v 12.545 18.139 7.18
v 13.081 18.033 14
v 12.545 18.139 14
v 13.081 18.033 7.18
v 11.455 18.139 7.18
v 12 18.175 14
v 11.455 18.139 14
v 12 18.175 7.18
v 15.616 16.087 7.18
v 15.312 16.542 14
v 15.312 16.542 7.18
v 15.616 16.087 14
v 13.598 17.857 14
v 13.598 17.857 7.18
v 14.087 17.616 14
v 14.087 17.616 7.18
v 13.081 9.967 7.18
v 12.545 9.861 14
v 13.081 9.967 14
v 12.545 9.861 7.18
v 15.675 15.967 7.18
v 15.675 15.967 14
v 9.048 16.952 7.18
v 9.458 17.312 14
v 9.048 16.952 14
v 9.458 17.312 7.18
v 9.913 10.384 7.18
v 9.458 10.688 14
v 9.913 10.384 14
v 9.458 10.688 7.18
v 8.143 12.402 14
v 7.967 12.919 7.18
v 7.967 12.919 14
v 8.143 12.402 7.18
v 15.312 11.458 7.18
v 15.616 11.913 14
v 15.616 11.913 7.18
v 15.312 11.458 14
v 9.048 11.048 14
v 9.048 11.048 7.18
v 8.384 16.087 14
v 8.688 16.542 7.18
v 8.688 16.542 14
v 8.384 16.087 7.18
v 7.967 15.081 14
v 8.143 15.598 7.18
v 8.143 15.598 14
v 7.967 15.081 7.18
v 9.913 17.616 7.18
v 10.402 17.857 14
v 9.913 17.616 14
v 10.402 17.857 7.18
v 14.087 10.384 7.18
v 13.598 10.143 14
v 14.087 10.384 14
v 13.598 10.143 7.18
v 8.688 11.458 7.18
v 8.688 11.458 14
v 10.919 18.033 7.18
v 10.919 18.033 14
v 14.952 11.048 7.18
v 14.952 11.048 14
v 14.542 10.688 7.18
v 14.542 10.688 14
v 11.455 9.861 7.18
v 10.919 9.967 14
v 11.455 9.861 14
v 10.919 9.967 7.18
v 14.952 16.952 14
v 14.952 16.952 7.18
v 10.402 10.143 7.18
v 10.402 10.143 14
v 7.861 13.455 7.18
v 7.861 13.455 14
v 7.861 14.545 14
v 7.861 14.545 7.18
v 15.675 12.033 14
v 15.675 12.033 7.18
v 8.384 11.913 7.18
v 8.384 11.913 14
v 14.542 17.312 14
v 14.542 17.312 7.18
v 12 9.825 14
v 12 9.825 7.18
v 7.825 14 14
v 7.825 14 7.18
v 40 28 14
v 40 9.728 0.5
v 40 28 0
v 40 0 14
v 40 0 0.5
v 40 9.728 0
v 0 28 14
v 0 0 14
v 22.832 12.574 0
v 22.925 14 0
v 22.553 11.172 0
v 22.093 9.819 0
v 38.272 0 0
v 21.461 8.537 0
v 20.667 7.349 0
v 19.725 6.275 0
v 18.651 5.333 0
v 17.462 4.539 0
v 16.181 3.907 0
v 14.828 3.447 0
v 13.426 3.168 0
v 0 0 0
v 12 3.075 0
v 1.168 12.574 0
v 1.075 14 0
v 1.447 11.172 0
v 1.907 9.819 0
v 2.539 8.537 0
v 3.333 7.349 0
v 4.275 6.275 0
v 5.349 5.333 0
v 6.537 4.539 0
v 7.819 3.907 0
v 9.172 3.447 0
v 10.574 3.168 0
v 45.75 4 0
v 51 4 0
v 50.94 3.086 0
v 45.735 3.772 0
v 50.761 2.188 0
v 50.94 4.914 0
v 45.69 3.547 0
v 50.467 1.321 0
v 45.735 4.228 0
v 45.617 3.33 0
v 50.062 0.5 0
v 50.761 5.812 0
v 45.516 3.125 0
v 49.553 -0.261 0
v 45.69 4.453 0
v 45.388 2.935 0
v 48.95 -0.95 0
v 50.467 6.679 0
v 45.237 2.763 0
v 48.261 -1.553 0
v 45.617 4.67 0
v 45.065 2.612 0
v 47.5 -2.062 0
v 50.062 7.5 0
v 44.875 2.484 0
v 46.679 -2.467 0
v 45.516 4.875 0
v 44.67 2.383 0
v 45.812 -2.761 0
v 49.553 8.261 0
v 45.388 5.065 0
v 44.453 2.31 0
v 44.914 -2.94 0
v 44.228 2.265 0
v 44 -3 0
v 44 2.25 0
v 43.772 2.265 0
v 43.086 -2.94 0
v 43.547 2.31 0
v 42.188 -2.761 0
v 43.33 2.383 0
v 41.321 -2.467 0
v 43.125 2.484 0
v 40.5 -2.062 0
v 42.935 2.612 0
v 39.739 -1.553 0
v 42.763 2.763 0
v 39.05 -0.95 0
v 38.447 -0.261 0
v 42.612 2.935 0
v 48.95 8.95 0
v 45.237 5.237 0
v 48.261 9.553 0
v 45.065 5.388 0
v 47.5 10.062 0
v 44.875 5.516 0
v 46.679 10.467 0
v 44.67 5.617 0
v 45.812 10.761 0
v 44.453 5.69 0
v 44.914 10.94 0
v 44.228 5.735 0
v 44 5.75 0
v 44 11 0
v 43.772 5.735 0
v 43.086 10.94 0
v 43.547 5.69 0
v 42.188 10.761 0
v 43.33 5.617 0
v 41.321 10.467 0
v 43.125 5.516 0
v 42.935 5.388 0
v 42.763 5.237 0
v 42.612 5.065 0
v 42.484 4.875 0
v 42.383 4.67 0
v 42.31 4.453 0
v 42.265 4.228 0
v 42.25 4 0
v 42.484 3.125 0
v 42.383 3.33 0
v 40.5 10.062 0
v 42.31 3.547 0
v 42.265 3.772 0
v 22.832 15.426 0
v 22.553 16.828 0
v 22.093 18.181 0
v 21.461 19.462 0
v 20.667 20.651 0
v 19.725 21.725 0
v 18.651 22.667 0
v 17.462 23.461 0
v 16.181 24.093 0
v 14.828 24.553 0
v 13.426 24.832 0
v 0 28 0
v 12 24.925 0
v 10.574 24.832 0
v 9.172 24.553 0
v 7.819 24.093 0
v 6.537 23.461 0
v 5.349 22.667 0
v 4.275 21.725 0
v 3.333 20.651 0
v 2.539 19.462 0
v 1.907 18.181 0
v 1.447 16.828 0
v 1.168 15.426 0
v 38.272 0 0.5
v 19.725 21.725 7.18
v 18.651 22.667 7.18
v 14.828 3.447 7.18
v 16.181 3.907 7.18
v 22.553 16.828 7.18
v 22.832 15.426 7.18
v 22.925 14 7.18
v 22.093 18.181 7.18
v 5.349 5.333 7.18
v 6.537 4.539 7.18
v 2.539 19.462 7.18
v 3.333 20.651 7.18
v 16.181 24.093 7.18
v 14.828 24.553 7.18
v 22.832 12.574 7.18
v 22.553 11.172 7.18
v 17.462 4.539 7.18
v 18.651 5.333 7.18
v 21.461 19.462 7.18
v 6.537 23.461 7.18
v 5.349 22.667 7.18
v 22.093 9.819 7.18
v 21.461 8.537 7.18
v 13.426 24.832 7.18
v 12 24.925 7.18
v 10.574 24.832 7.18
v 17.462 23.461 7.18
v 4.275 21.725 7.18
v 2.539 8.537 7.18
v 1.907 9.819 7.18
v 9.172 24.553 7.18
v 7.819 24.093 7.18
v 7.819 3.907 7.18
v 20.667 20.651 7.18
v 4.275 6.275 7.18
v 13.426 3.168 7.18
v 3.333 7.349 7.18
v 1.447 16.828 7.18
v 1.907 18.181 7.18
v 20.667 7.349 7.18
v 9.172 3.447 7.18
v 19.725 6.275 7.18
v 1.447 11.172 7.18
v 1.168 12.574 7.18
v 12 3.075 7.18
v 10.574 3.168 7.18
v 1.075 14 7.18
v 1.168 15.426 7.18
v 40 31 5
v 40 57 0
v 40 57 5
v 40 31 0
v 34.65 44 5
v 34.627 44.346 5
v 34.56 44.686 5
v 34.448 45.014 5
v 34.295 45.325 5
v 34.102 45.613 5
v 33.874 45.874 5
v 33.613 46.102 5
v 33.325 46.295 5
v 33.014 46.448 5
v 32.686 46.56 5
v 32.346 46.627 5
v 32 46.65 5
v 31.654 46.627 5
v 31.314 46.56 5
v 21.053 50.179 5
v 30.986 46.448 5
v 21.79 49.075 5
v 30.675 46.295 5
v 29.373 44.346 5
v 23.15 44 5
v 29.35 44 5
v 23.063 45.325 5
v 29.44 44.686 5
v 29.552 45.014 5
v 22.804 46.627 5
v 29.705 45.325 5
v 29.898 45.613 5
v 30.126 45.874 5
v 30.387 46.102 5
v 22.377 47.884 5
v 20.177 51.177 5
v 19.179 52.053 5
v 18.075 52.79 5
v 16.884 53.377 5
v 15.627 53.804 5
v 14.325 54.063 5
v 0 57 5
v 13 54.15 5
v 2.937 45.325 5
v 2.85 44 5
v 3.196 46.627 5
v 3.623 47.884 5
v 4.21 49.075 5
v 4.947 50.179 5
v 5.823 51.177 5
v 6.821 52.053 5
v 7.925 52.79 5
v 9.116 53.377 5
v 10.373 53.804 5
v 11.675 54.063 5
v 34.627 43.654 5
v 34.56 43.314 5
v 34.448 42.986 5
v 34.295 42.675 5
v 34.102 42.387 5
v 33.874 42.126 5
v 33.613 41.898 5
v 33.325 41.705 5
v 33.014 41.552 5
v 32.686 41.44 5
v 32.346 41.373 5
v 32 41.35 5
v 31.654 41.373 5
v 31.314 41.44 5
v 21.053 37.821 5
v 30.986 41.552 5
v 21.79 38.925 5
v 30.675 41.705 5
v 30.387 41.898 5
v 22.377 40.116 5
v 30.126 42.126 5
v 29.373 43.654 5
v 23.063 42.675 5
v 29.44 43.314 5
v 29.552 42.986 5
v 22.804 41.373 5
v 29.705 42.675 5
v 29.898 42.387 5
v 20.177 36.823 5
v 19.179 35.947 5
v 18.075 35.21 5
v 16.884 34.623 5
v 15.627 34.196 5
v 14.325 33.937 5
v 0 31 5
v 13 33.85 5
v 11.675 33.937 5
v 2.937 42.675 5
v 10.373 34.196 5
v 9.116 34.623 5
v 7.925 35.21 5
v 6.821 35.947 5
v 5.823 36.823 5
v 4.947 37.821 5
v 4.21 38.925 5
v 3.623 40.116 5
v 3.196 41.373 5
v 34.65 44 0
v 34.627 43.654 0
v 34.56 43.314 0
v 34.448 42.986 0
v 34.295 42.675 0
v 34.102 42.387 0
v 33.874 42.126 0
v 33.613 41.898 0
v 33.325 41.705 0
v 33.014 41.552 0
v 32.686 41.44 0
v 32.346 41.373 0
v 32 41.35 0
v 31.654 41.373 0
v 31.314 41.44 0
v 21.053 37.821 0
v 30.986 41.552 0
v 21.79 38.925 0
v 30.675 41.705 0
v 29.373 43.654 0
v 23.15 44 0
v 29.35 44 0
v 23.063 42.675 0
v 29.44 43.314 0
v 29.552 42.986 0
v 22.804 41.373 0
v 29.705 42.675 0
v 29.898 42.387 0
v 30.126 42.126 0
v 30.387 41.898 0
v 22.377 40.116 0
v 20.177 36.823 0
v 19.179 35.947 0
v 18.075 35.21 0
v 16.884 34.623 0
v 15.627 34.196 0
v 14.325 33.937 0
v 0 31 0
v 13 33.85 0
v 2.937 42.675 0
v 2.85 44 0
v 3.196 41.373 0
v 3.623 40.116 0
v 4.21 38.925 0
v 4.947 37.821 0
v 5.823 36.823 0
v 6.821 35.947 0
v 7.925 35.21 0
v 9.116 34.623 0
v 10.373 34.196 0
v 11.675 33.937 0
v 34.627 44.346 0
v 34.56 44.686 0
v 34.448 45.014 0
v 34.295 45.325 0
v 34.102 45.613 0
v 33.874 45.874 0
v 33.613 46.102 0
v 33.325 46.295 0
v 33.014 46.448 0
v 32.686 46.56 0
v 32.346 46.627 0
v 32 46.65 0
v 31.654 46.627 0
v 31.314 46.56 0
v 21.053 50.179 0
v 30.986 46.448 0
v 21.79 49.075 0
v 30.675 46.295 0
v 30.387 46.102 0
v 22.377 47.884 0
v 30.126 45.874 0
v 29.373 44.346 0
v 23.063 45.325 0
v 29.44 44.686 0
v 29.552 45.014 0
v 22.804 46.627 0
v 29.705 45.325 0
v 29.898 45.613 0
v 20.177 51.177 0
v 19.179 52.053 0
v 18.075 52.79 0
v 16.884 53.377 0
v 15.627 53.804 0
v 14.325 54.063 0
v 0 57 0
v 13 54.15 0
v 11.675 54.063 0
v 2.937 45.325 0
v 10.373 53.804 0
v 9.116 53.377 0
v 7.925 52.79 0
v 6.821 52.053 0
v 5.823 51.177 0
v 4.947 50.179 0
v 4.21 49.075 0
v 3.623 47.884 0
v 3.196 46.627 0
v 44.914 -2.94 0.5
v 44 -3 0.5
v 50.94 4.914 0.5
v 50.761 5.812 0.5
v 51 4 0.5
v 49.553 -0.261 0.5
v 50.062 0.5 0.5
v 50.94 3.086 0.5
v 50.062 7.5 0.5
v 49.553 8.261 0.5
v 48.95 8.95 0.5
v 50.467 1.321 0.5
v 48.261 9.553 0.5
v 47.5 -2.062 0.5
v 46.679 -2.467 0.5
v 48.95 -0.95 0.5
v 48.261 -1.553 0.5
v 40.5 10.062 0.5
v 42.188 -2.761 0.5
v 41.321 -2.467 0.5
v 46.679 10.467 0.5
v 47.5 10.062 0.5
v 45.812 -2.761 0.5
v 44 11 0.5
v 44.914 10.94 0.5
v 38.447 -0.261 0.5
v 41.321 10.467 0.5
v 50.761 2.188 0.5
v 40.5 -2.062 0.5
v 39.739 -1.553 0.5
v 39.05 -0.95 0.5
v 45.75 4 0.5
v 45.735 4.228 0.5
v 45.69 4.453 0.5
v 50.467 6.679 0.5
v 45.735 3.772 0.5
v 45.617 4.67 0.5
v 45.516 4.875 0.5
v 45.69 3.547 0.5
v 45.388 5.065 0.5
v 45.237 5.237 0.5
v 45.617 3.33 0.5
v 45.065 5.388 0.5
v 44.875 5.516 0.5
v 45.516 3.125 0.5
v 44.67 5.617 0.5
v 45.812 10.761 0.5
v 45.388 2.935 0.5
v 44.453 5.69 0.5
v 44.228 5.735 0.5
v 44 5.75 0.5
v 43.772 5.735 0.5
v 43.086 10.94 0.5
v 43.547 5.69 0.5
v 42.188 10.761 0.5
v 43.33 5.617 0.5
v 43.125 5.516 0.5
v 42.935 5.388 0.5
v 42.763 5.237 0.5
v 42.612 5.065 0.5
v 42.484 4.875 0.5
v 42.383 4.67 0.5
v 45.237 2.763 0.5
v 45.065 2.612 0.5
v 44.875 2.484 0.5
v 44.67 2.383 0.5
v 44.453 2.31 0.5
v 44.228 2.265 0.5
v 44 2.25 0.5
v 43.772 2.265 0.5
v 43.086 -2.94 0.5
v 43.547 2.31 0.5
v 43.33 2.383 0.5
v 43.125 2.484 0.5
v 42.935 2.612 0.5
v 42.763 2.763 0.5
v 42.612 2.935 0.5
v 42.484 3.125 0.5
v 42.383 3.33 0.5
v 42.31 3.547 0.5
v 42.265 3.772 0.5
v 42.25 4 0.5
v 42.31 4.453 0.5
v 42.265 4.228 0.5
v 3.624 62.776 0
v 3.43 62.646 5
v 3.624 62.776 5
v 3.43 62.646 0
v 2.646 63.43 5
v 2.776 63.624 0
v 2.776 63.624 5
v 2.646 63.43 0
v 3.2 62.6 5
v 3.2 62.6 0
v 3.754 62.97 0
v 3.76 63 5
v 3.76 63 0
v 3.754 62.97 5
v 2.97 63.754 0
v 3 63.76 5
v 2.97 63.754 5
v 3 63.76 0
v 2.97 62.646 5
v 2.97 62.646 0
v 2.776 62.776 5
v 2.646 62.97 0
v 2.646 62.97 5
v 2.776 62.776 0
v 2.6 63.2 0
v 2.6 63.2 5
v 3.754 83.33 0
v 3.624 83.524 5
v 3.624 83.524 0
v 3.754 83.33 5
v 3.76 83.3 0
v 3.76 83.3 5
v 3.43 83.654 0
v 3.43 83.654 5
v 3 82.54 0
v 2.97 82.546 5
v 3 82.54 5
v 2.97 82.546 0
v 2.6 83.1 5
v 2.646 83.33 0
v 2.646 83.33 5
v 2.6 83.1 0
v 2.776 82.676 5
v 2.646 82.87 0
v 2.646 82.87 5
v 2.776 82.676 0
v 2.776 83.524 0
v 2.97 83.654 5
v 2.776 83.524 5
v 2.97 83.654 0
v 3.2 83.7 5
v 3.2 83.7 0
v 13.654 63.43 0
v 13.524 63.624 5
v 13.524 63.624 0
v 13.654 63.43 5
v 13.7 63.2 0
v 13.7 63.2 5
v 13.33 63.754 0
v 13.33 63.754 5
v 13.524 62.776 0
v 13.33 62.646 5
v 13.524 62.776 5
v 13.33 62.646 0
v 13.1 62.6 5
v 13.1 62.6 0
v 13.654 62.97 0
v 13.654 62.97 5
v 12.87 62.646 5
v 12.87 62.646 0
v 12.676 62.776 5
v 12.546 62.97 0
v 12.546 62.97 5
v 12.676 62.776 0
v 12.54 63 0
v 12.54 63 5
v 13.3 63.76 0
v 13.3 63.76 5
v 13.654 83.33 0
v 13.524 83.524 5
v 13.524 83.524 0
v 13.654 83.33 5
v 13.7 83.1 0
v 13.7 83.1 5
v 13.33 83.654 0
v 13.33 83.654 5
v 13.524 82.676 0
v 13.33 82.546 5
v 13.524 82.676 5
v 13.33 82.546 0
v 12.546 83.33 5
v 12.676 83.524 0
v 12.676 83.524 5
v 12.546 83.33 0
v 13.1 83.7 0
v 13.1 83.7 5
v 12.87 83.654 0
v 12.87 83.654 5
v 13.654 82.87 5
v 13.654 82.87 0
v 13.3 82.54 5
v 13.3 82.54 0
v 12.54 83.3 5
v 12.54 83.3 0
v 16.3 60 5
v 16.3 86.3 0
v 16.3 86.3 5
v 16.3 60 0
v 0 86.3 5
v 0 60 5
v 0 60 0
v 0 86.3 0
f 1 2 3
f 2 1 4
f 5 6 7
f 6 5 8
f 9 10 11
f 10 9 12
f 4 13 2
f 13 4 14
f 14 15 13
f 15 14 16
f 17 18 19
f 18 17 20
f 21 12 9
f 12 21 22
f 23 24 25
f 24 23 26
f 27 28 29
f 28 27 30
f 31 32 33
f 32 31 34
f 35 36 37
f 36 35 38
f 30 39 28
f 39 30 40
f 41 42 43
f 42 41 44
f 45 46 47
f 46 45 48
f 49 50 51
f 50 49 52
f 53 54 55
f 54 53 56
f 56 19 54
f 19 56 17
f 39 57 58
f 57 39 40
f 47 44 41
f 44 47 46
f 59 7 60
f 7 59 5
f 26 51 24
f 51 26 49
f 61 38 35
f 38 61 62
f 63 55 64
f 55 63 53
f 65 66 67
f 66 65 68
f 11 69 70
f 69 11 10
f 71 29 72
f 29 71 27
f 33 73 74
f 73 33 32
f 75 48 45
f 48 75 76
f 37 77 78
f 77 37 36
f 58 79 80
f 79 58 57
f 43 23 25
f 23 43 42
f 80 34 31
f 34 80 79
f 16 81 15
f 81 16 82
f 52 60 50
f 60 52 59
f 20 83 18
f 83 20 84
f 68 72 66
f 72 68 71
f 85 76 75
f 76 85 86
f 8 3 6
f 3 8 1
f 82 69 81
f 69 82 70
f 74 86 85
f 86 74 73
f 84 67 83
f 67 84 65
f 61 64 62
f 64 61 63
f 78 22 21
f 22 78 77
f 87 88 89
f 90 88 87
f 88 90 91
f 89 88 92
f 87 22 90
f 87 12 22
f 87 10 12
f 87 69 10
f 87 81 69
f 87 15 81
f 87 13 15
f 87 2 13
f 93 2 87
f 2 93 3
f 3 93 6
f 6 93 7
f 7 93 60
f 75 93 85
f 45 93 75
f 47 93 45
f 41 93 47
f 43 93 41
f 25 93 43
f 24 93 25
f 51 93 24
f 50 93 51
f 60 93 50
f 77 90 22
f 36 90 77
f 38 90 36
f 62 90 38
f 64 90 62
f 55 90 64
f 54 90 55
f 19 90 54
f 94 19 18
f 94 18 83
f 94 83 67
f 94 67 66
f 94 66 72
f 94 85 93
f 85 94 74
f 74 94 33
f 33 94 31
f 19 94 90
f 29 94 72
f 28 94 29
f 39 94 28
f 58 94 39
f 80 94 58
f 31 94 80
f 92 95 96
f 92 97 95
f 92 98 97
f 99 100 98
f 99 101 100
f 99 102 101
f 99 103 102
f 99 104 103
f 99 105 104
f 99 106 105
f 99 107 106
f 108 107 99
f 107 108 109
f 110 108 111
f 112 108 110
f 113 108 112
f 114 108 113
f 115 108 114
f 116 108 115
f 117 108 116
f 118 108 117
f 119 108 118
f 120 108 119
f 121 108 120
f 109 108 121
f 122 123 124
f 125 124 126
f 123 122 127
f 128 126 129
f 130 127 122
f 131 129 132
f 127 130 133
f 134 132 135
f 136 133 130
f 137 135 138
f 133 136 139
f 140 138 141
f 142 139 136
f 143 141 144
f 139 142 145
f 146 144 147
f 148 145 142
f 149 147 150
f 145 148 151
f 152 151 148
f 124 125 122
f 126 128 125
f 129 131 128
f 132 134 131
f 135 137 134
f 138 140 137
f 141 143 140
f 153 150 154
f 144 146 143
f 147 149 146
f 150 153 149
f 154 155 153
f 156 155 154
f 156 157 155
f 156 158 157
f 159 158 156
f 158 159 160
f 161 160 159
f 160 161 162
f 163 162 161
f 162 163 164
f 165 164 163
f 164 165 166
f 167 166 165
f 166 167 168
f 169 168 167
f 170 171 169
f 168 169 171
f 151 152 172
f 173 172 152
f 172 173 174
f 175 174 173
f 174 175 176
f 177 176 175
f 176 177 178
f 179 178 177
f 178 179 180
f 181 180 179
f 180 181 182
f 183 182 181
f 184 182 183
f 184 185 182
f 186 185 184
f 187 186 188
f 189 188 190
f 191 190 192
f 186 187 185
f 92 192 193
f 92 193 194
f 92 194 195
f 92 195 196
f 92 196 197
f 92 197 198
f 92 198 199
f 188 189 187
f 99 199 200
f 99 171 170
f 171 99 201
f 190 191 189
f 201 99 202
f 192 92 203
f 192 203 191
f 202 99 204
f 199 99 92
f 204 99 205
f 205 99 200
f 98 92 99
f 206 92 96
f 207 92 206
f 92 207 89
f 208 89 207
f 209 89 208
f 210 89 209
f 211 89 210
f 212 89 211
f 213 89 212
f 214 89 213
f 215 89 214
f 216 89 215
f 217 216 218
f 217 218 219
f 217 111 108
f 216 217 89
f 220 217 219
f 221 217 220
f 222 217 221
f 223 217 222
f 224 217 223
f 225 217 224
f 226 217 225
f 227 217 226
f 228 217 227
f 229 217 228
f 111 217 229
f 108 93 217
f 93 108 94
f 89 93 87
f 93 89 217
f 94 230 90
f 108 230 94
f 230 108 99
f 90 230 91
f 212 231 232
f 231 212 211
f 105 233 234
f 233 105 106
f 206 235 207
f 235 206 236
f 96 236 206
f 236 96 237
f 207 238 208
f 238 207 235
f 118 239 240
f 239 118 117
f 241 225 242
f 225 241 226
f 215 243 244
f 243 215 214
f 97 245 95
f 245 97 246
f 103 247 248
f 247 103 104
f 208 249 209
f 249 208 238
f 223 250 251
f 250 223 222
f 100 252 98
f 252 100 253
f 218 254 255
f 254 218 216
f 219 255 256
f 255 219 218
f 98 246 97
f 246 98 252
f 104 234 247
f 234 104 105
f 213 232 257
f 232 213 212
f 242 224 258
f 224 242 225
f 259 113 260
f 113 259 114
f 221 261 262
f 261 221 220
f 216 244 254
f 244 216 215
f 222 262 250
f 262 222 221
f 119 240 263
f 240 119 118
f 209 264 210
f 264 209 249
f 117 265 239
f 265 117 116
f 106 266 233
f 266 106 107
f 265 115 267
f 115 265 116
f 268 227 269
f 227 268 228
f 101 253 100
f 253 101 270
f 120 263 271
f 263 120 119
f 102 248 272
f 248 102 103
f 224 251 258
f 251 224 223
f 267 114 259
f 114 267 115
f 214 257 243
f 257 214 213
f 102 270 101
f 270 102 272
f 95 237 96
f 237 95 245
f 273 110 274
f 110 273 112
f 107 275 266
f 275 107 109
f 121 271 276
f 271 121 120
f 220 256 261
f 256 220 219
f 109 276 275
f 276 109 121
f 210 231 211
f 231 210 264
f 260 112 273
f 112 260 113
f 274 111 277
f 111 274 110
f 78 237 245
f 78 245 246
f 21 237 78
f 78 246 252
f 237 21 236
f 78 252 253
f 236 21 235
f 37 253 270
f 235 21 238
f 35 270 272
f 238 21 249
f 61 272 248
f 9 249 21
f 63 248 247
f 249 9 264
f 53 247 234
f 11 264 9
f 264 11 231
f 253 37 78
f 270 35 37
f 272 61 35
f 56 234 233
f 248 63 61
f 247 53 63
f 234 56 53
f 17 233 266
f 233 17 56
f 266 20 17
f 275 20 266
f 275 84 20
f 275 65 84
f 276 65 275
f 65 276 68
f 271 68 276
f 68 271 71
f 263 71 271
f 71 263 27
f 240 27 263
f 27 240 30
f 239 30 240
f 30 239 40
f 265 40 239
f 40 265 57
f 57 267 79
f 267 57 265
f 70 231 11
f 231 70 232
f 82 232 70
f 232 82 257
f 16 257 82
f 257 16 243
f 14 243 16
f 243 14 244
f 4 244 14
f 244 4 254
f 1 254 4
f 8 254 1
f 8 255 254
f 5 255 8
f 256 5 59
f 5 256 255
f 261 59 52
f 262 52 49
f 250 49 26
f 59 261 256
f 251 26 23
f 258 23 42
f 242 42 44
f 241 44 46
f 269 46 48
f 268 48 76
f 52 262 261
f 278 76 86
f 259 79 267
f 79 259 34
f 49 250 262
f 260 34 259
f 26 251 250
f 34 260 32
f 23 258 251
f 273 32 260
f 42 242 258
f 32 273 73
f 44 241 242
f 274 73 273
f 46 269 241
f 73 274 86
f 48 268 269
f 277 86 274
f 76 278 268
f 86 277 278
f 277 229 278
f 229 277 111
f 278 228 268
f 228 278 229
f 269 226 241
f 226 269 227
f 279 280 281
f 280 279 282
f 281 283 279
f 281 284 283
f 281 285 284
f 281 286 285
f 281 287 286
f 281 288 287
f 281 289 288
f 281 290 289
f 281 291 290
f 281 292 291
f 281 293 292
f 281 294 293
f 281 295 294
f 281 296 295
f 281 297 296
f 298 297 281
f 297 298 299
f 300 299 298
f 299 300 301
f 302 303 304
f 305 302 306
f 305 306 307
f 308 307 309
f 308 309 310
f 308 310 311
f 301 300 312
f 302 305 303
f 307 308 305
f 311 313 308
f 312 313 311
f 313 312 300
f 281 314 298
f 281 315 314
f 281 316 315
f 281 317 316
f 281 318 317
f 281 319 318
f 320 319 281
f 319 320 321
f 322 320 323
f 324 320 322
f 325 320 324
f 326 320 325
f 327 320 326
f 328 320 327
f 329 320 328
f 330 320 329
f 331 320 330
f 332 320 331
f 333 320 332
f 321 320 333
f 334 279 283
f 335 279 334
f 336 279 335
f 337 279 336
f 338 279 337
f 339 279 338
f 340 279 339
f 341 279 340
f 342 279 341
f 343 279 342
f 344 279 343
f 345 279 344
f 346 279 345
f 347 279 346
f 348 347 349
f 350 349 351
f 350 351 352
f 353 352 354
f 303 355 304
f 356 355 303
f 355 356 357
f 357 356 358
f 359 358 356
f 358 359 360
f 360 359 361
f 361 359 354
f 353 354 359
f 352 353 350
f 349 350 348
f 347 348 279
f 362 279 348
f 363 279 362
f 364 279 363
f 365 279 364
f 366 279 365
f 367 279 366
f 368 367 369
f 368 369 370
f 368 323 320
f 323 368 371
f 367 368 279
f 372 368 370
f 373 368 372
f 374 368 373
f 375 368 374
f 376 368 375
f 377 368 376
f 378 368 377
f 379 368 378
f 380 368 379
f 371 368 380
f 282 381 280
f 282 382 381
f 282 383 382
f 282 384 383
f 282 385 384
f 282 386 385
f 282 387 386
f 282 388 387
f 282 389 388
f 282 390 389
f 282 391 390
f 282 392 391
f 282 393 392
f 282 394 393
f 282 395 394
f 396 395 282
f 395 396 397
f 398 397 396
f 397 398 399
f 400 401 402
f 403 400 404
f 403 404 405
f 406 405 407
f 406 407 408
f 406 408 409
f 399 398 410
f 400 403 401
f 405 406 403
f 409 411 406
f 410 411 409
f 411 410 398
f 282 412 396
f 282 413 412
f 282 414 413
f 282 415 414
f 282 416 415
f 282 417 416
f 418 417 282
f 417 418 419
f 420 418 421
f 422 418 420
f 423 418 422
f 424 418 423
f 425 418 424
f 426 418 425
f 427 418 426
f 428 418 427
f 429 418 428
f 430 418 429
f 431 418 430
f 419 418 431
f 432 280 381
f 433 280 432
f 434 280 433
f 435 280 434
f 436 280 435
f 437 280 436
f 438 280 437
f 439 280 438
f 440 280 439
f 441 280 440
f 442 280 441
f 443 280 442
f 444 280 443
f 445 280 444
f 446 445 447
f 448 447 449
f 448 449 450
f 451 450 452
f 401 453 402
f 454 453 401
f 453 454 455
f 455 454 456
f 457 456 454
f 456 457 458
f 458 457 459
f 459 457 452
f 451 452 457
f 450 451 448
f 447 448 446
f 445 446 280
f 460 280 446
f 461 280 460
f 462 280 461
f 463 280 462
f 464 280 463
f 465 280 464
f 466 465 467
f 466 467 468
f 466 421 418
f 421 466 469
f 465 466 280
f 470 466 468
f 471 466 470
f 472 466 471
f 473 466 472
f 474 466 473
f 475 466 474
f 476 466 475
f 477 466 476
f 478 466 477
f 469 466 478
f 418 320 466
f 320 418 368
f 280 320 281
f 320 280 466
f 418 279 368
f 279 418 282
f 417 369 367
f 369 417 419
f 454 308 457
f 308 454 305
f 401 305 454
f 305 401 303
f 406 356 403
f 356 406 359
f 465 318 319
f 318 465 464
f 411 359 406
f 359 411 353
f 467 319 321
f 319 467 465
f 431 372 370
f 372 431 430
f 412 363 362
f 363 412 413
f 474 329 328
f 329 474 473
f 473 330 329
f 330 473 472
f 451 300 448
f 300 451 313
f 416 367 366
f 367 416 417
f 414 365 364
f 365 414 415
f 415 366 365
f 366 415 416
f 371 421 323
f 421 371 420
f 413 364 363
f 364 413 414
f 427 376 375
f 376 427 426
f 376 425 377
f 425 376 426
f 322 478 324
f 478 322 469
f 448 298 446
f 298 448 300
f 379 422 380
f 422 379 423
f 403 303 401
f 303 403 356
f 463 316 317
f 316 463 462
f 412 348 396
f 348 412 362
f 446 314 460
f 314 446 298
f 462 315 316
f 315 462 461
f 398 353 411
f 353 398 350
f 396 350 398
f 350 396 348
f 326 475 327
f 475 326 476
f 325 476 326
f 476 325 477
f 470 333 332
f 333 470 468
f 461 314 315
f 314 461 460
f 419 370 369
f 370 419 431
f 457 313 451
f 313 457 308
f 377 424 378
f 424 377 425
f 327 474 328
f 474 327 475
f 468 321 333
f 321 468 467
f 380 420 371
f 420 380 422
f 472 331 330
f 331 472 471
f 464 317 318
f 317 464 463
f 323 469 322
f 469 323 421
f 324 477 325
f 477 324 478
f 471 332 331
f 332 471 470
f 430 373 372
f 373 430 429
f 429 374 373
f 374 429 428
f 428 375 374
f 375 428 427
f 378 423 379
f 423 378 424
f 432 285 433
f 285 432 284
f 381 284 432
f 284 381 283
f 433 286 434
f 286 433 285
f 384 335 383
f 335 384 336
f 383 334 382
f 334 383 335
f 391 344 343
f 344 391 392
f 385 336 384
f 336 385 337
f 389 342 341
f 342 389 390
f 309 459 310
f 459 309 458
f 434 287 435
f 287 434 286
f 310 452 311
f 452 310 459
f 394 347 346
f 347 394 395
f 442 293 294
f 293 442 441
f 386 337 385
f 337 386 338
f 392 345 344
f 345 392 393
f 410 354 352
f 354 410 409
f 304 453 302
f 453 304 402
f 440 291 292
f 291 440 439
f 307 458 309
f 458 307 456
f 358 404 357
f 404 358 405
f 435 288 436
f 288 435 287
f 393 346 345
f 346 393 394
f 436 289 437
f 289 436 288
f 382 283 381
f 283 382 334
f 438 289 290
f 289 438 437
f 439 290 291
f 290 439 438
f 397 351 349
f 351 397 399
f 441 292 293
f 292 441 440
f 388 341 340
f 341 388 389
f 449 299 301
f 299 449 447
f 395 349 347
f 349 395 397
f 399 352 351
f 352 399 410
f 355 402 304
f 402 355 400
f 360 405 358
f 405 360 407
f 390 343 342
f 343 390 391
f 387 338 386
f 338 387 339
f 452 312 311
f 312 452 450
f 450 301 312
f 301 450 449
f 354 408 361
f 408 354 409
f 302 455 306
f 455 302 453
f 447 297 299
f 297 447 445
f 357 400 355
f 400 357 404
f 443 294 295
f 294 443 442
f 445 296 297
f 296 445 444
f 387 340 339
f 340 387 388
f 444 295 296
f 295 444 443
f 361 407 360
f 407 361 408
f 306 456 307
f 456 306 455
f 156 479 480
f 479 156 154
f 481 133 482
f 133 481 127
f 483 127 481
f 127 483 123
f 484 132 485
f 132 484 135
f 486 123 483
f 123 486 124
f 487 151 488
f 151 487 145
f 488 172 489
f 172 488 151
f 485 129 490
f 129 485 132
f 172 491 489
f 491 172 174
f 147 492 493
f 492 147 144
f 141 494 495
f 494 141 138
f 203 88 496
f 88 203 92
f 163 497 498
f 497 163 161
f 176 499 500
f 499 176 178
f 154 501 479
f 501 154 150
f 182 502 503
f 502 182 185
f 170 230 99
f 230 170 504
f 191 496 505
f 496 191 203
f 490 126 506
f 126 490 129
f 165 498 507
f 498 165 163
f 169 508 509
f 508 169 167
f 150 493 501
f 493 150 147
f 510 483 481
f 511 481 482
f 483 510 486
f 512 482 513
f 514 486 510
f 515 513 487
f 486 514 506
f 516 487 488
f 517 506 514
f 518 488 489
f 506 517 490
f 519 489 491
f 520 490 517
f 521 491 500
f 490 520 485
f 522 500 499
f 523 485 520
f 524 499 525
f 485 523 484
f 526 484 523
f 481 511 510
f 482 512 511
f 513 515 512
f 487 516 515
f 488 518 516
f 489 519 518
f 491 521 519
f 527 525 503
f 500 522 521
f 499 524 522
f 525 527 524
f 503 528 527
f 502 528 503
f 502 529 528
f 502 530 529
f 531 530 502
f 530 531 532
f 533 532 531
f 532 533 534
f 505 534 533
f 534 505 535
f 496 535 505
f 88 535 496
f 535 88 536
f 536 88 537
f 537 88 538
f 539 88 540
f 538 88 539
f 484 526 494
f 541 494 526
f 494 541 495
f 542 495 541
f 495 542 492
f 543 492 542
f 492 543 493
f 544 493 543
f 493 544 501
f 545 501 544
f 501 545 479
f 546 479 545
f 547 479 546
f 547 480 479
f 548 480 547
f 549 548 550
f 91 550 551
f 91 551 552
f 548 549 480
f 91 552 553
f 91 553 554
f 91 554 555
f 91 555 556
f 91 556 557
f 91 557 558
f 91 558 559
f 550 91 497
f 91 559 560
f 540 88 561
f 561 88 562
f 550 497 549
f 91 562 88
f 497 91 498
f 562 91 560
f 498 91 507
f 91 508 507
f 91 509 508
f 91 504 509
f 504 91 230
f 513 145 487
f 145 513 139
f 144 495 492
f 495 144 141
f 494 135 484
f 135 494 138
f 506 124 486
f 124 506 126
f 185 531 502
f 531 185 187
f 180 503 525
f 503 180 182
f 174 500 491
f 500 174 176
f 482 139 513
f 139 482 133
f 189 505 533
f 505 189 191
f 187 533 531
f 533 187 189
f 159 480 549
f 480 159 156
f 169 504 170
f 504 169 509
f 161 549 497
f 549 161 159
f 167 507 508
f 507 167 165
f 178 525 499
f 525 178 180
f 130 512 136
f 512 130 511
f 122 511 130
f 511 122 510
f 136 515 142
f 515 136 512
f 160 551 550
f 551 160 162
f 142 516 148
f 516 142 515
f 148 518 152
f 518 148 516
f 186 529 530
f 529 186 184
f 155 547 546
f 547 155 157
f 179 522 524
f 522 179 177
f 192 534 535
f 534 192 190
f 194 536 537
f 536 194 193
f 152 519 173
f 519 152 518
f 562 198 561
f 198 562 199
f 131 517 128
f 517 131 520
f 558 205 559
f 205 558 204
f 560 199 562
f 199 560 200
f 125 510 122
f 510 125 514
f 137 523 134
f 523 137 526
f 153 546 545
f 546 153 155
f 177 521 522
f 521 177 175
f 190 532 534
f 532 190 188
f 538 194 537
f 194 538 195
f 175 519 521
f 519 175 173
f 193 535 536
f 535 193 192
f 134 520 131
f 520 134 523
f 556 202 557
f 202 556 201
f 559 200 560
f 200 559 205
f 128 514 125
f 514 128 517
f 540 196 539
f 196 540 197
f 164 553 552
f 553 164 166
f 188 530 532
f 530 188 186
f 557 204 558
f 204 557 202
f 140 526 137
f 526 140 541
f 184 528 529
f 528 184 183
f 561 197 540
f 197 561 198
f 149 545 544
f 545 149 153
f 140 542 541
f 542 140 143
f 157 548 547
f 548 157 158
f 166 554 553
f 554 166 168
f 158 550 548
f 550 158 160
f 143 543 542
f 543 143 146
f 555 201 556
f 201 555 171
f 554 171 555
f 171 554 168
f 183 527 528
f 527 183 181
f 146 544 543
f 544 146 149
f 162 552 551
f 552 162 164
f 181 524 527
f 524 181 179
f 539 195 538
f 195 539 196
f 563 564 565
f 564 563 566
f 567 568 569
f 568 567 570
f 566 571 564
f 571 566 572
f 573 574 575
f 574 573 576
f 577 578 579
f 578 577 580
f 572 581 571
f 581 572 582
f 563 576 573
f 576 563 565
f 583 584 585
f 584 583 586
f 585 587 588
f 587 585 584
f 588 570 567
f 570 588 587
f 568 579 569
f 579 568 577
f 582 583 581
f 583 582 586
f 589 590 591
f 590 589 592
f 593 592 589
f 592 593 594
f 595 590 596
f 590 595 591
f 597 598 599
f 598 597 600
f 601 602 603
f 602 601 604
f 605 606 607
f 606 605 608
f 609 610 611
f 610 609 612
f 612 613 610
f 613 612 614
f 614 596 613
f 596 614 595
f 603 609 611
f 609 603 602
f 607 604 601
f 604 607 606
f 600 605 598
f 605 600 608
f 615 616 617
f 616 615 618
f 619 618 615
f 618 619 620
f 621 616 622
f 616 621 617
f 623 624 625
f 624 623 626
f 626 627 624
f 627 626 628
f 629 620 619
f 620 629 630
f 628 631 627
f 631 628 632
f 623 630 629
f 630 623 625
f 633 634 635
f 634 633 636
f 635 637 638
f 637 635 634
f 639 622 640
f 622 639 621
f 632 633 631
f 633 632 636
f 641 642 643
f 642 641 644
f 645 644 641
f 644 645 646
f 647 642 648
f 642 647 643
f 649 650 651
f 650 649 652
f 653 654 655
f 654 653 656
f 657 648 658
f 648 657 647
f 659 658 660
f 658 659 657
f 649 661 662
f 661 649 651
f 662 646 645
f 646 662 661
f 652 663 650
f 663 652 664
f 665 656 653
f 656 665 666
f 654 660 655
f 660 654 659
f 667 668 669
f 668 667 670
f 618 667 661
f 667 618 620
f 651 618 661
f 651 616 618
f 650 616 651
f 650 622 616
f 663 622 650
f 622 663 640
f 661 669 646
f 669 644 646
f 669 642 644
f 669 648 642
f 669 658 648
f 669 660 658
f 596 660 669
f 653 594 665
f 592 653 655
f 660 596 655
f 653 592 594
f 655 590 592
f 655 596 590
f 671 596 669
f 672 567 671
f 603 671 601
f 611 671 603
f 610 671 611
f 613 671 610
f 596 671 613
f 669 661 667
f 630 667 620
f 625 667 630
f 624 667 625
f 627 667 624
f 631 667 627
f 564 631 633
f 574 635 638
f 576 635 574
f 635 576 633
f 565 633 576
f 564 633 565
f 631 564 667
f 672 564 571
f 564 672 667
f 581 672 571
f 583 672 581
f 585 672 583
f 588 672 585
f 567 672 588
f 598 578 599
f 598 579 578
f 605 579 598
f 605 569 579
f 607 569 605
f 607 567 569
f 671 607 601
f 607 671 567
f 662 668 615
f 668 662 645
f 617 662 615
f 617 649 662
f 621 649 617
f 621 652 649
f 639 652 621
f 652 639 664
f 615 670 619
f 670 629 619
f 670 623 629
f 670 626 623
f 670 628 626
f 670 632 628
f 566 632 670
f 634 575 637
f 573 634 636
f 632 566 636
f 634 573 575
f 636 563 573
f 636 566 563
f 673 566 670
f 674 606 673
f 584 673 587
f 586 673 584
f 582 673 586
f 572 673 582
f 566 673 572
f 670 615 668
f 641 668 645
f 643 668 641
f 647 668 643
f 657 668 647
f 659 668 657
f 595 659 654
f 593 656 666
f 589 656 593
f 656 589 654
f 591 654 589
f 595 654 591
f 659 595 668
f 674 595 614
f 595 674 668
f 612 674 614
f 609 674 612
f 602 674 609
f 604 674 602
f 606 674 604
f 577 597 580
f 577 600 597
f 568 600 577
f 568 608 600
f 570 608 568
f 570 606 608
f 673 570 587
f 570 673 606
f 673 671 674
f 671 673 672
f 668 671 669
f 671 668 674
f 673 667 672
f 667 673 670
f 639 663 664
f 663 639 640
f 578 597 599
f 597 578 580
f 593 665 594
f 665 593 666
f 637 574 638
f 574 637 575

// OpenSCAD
// file: parameters.scad
// =============================================================================
// Gen-CL — nightly 2026-10-16 (physics_scorer, honest magpylib watts)
// Modular swap: exactly the Gen-CJ rotors, arcs and steel, on a thinner-copper stator (4.0 mm copper, so the magnet faces close in by 0.5 mm) that needs only ≈300 m of 26 AWG — the rest of the spool stays free. Swap stators by changing the gap sleeve only.
// Clocking 0 deg (magnets N facing S) + D-flat keyed bore + index notch + flip-symmetric hole map.
// Windable 2-piece bobbin; turns = physics_scorer turns_fit; copper only between flanges.
// Steel back-iron: 2× Ø198 × 4.76 mm (3/16") mild-steel discs (steel_backiron_disc.dxf); magnets sit ON the steel
// (through-pockets) -> score with --back-iron. Night 2026-10-16.
// =============================================================================
topology            = "dual_rotor";

// --- Wire / winding (physics_scorer winding-fit) -------------------------------
wire_awg            = 26;
wire_od             = 0.45;     // insulated OD mm (bare 0.405)
fill_realistic      = 0.65;     // insulated-wire area / window (DENSE layered wind with a jig; scorer cap 0.65)
turns               = 196;       // = physics_scorer turns_fit (do NOT raise)
coil_former_type    = "bobbin";
coil_core_inset     = 12.00;     // radial copper build: hub = copper boundary inset by this
wind_build_axial    = 0.0;      // nothing proud of the flanges
wind_build_radial   = 0.0;

// --- Bobbin (base + lid) ---------------------------------------------------------
coil_id_r           = 50.00;    // copper boundary sector
coil_od_r           = 104.00;
span_deg            = 25.99;    // = pitch - 2*asin((wall+0.85)/coil_id_r) -> >=1.2 mm stator web
former_web          = 4.00;     // copper height between flanges (TALL copper: steel keeps Bz up)
flange_t            = 0.80;     // >= 0.8 mm FDM wall rule (tall winds push on the flanges)
wall                = 0.80;     // flange lip beyond copper
former_bare_h       = former_web + 2 * flange_t;
coil_envelope_h     = former_bare_h + 2 * wind_build_axial;
tab_w               = 7.0;
tab_len             = 7.0;
tab_h               = former_bare_h / 2;
pin_d               = 1.9;      // 1.75 mm filament locating pin
coil_mount_r        = coil_od_r + 0.2 + 4.0;
lead_y              = 1.6;
lead_slot_w         = 0.9;
lead_groove_d       = 0.6;

// --- Gap -------------------------------------------------------------------------
run_clear           = 0.50;     // rotor face -> flange
gap_spacer_h        = run_clear + wind_build_axial;
m2m                 = coil_envelope_h + 2 * run_clear;   // rotor face to rotor face (= gap_sleeve length)

// --- Stator ----------------------------------------------------------------------
coil_stations       = 12;
bay_clear           = 0.35;     // 0.35 mm: bobbin BASES print IN PLACE inside the stator bays (print-in-place gap), then pop out
stator_thick        = former_bare_h;                        // bobbins flush both faces
stator_od           = 229.0;
shaft_clear_stator  = 14.0;     // stator is static; gap sleeve OD 12 spins inside
stator_ir           = 44.85;    // ANNULAR stator: open centre (nested one-plate pack); inner rim 4.0 mm

// --- Rotor(s) --------------------------------------------------------------------
magnet_Br           = 1.43;     // N52
magnet_d_large      = 20.0;
magnet_h_large      = 5.0;      // one O20x5 per pocket
magnet_h_small      = 5.0;      // one O5x5 per pocket
halbach_magnetisation = "diametric"; // O5x5 assist magnets MUST be DIAMETRICALLY magnetised (tangential)
rotor_b_same_axis   = true;     // same-index magnets share one axis: N faces S across the gap
large_pocket_d      = 20.3;
small_pocket_d      = 5.3;
pocket_h            = 5.00;     // THROUGH the carrier: magnet back face sits on the steel disc (FLUSH seat: carrier = magnet height, magnet face level with the rotor face)
large_n             = 8;
R_large             = 86.0;
R_small_inner       = 79.8;
R_small_mid         = 86.0;
R_small_outer       = 92.2;
small_r_list        = [R_small_inner, R_small_mid, R_small_outer];   // O5 pockets between poles
// --- N42 rectangular BLOCK magnets (2026-10-16/17): one 20x10x5 block per pole, radially INSIDE the O20 disc ---
block_R_list        = [64.5];   // block centre radius (pole angle); same polarity as its O20 -> radially extended pole
block_angle_list    = [0];
block_radial        = 20.0;    // block side that runs RADIALLY (mm)
block_tangential    = 10.0;    // block side that runs TANGENTIALLY (mm)
block_h             = 5.0;     // magnetised through the 5 mm thickness (axial), = magnet_h_large so it sits on the steel
block_Br            = 1.29;    // N42 remanence (1.28-1.32 T); scorer models it as a magpylib Cuboid
block_pocket_clear  = 0.3;    // pocket = block + 0.3 mm each way (+ 1.2 mm corner reliefs)
carrier_od          = 198.0;
ring_ir             = 51.35;    // RING rotor: PLA magnet ring r ring_ir..carrier_od/2 (steel disc = structural rotor)
hub_flange_od       = 58.0;     // separate rotor_hub flange (inside the ring, flush with the ring face)
csk_d               = 6.6;      // M3 countersunk head pocket (ISO 10642 head 6.0 nominal) on the stator face
csk_depth           = 1.55;     // = (csk_d - m3_clear) / 2: 90 deg cone; head sits 0.3 mm below the face
n_seg               = 8;        // magnet-carrier ARCS per rotor (segmented carrier)
seg_deg             = 360 / n_seg;
seg_start           = -32;   // arc edge angle (between pocket 0 and its clamp bolt)
seg_kerf_deg        = 0.4;      // gap between neighbouring arcs on the steel
carrier_thick       = pocket_h;
hub_h               = 12.0;     // > steel_t + insert: radial set-screw clears the steel
hub_od              = 24.0;     // slim hub so the M4 brace rods fit at R~18 inside the coil ring
hub_insert_d        = 4.0;      // M3 heat-set insert, radial, bears on the D-flat
rotor_b_offset_deg  = 0.0;      // CLOCKING: magnets directly opposite
shaft_key           = "dflat";
dflat_depth         = 0.5;      // 8 mm shaft with 0.5 mm flat (7.5 across flat)
index_notch_d       = 3.0;

// --- Steel back-iron (buyable laser-cut) -------------------------------------------
steel_t             = 4.76;      // mild steel thickness (image method ignores it; sized from steel_flux.py so the return path stays well below saturation)
steel_center_hole   = 26.0;     // slips over the rotor hub (OD 24)
steel_od            = carrier_od;   // steel disc OD = rotor carrier OD

// --- Modular MAX interface ----------------------------------------------------------
shaft_bore          = 8.35;
dflat_x             = 4.0 - dflat_depth + (shaft_bore - 8.0) / 2;
bearing_d           = 21.85;
bearing_h           = 7.2;
m3_clear            = 3.5;
bolt_r_inner        = 22.0;     // M3 steel-disc clamp bolts (inside the magnet ring)
bolt_n_inner        = 4;
bolt_inner_angles   = [0, 90, 180, 270];
bolt_r_outer        = 86.0;     // second M3 steel-disc clamp ring
bolt_outer_angles   = [13.0, 32.0, 58.0, 77.0, 103.0, 122.0, 148.0, 167.0, 193.0, 212.0, 238.0, 257.0, 283.0, 302.0, 328.0, 347.0];
flange_bolt_r       = 109.5;     // frame rods: OUTSIDE the rotor OD (rotors spin inside them)
flange_bolt_n       = 4;
flange_bolt_offset  = 45.00;    // between coil stations -> never cuts a lead groove/tab
brace_r             = 18.0;
brace_d             = 4.3;      // temporary M4 jack rods (assembly only)
brace_n             = 4;
brace_angles        = [45, 135, 225, 315];          // flip-symmetric

spacer_pad_od       = 14.0;
spacer_pad_id       = m3_clear;
endbell_od          = 229.0;
endbell_thick       = 8.0;
endbell_shaft_clear = 10.0;
collar_h            = 10.0;
standoff_od         = 9.0;
frame_standoff_h    = run_clear + carrier_thick + hub_h + collar_h + 2.0;
sleeve_od           = 12.0;
plate_max_mm        = 410;

$fn = 64;
// main file
// Gen-CL — fit coupon: O20/O5 THROUGH pockets at carrier thickness (test on a steel offcut), 608 seat,
// D-flat bore, gap shim, and one bobbin-bay slice (bobbin footprint + bay_clear) to test former fit.
include <parameters.scad>;
$fn = 48;
// D-flat keyed bore: flat faces +X (angle 0 = magnet pocket 0 = index notch)
module dflat_bore(h) {
    intersection() {
        cylinder(d=shaft_bore, h=h);
        translate([-shaft_bore, -shaft_bore, 0]) cube([shaft_bore + dflat_x, 2*shaft_bore, h]);
    }
}
module sector_2d(r_in, r_out, ang) {
    polygon([
        for (a = [-ang/2 : ang/24 : ang/2]) [r_in*cos(a), r_in*sin(a)],
        for (a = [ang/2 : -ang/24 : -ang/2]) [r_out*cos(a), r_out*sin(a)]
    ]);
}
module footprint_2d() { offset(r=wall) sector_2d(coil_id_r, coil_od_r, span_deg); }
module hub_2d()       { offset(delta=-coil_core_inset) sector_2d(coil_id_r, coil_od_r, span_deg); }

block_w = 40; block_d = 28; block_h = 14;
difference() {
    cube([block_w, block_d, block_h]);
    translate([12, block_d/2, -0.02]) cylinder(d=bearing_d, h=bearing_h);
    translate([12, block_d/2, -0.1]) dflat_bore(block_h + 1);
}
translate([0, block_d + 3, 0]) difference() {
    cube([40, 26, carrier_thick]);
    translate([13, 13, -0.1]) cylinder(d=large_pocket_d, h=carrier_thick + 0.2);
    translate([32, 13, -0.1]) cylinder(d=small_pocket_d, h=carrier_thick + 0.2);
}
translate([block_w + 4, 4, 0])
    difference() {
        cylinder(d=spacer_pad_od, h=gap_spacer_h);
        translate([0, 0, -0.1]) cylinder(d=spacer_pad_id, h=gap_spacer_h + 0.2);
    }
// N42 20x10x5 BLOCK through-pocket test (block + block_pocket_clear, 1.2 mm corner reliefs), 2026-10-16
translate([0, block_d + 3 + 26 + 3, 0]) difference() {
    cube([block_tangential + block_pocket_clear + 6, block_radial + block_pocket_clear + 6, carrier_thick]);
    translate([3, 3, -0.1]) cube([block_tangential + block_pocket_clear, block_radial + block_pocket_clear, carrier_thick + 0.2]);
    for (x = [3.2, 3 + block_tangential + block_pocket_clear - 0.2], y = [3.2, 3 + block_radial + block_pocket_clear - 0.2])
        translate([x, y, -0.1]) cylinder(d=1.2, h=carrier_thick + 0.2, $fn=16);
}
